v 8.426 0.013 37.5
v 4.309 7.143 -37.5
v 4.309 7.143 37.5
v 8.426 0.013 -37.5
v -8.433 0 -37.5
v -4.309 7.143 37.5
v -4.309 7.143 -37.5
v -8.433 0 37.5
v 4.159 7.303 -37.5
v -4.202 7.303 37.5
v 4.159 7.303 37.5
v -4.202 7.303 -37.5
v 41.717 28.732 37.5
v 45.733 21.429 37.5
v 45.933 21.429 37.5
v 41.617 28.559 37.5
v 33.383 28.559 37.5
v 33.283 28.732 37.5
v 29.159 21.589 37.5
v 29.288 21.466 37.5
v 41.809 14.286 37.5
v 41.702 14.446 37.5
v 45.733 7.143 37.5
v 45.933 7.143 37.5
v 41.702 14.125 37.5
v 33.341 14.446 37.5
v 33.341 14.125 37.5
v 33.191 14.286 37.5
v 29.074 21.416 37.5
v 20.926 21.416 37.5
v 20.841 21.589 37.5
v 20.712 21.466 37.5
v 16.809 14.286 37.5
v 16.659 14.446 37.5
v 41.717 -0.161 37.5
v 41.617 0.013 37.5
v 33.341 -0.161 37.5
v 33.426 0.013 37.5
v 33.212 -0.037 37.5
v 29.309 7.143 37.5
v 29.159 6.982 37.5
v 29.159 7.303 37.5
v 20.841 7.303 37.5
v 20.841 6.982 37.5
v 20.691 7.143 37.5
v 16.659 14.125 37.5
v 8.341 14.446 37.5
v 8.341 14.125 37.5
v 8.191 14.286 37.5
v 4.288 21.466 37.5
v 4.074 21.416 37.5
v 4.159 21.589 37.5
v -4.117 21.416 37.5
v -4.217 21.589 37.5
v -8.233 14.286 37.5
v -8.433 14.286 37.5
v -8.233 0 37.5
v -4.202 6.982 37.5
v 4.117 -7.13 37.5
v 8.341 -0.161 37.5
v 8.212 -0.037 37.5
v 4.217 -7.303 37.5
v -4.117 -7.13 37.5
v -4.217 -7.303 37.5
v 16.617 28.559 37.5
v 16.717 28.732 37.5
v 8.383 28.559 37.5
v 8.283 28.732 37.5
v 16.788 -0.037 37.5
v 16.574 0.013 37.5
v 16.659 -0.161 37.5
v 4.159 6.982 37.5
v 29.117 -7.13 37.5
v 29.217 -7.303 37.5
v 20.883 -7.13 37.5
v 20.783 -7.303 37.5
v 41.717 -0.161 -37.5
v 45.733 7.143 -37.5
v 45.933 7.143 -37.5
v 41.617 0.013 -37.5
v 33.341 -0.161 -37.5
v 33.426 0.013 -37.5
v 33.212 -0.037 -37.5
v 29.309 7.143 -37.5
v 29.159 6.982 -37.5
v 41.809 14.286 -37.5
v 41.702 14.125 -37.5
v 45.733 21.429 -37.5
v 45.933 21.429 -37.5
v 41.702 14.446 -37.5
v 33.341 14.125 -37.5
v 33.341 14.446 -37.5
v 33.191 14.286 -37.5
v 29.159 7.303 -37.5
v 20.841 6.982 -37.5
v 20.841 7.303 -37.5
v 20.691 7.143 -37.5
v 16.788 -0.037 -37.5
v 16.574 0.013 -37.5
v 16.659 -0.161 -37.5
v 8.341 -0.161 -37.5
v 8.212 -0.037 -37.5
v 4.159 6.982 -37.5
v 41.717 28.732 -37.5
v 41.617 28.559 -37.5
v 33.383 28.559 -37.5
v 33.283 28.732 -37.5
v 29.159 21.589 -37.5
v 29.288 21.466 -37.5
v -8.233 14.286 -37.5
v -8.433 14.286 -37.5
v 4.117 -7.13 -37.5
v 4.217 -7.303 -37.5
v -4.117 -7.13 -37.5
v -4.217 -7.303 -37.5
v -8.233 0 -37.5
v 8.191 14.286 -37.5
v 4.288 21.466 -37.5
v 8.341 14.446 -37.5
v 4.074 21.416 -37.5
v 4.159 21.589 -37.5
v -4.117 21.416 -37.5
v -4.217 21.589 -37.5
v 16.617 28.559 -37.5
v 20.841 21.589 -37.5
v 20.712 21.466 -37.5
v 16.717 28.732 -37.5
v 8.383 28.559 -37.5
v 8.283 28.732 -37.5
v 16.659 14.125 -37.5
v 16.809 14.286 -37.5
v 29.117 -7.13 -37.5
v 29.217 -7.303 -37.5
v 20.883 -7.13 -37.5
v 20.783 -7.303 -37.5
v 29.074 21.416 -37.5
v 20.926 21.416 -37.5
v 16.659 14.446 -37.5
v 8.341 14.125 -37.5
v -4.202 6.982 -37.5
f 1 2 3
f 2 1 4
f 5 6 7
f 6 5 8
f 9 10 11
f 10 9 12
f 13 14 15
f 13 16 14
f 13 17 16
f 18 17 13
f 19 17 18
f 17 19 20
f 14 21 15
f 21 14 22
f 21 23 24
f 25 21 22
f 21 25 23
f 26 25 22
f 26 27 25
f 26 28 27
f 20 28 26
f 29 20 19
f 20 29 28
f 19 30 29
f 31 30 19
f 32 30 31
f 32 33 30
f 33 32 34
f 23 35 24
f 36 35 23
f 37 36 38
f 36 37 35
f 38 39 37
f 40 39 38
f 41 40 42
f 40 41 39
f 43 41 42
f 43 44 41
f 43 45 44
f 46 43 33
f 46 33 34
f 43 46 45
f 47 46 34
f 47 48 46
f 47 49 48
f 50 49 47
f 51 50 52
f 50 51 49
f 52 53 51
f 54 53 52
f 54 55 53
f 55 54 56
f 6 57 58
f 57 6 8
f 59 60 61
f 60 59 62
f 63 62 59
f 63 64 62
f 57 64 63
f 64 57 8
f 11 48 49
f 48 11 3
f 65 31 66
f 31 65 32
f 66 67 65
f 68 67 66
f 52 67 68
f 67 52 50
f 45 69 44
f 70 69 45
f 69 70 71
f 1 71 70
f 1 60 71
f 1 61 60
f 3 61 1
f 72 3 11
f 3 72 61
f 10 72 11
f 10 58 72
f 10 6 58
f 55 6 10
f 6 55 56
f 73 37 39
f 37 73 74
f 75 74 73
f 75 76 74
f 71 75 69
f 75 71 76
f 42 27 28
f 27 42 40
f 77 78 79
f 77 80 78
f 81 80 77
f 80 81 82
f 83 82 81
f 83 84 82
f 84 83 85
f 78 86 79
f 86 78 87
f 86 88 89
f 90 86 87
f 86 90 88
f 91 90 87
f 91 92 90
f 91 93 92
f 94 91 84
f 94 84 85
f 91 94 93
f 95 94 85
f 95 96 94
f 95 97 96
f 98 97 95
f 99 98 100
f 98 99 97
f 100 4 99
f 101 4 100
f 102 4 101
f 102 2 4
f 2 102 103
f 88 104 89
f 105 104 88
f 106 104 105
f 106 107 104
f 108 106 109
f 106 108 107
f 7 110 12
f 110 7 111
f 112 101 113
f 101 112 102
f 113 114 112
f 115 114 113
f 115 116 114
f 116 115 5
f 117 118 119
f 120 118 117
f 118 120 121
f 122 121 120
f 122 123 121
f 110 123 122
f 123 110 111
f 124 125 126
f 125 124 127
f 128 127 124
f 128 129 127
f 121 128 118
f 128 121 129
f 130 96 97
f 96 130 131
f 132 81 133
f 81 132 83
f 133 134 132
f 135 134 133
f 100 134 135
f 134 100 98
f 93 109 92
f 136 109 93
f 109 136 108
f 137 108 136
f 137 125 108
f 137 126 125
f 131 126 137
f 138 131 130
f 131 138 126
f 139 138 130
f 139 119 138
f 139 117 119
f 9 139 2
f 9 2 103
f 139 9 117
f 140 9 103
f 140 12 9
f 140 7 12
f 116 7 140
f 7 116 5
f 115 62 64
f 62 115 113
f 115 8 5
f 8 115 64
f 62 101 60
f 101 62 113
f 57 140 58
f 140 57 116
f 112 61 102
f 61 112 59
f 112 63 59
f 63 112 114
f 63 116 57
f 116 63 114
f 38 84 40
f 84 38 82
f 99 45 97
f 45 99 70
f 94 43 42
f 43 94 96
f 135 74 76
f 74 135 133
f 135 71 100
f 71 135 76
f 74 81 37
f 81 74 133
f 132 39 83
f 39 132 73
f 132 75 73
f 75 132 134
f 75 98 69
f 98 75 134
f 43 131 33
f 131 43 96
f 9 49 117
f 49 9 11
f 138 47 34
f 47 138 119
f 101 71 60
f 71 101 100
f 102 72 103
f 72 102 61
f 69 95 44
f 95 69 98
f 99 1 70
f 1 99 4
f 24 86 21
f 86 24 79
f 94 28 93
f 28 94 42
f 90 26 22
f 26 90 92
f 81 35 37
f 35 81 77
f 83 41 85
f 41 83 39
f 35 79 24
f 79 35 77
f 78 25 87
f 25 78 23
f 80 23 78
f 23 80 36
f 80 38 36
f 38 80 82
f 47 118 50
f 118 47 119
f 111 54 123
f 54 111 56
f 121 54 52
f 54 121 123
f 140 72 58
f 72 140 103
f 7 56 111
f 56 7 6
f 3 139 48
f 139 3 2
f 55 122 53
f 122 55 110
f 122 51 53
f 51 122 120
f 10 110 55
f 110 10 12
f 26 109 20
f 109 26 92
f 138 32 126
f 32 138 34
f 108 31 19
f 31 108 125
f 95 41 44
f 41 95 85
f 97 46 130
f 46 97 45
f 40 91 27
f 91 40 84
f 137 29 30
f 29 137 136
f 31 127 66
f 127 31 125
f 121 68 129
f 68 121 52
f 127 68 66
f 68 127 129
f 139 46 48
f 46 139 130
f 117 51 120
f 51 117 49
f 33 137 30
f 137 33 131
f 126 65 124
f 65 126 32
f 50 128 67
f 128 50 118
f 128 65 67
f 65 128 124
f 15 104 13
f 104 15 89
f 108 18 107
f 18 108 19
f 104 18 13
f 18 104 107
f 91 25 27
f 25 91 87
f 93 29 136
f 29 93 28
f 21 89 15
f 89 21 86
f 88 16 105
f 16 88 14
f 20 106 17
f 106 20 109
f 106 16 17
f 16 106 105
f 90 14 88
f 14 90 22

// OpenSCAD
hexagonal_grid( 25, 75, 2 , 4);

/**
 * Crea un grid hexagonal para guardar cables ordenados 
 * 
 * @param radio Radio de cada hexagono
 * @param depth Profundidad de hexagonos 
 * @param n_cols Numero de hexagonos por fila (eje X)
 * @param n_rows Numero de filas (eje Y)
 */
module hexagonal_grid( radio, depth, n_cols, n_rows ) {
    union() {
        for( i_row = [ 0 : 1 : n_rows - 1])
            translate( [( radio / 2 ) * ( ( i_row % 2 )), ( radio / 3.5 ) * i_row, 0] ) 
                line_hexagons( radio * n_cols , depth, n_cols );
    }
}

/**
 * Crea un array de hexagonos
 *
 * @param width Ancho de la linea de hexagonos
 * @param depth Profundidad de hexagonos 
 * @param n_cols Numero de hexagonos en el array
 */
module line_hexagons( width, depth , n_cols ) {    
    separation = ( width / n_cols );
    radio = ( separation / 3 ) + 0.1;
    depth2 = depth + 2;
    radio2 = radio - 0.2 ;
                
    
    for( x = [ 0 : 1 : n_cols - 1])
        translate([ (x * separation), 0 ,0])
            difference() {
                cylinder(h = depth, r1 = radio , r2 = radio, center = true , $fn = 6);
                cylinder(h = depth2, r1 = radio2 , r2 = radio2, center = true , $fn = 6);
            }

}
